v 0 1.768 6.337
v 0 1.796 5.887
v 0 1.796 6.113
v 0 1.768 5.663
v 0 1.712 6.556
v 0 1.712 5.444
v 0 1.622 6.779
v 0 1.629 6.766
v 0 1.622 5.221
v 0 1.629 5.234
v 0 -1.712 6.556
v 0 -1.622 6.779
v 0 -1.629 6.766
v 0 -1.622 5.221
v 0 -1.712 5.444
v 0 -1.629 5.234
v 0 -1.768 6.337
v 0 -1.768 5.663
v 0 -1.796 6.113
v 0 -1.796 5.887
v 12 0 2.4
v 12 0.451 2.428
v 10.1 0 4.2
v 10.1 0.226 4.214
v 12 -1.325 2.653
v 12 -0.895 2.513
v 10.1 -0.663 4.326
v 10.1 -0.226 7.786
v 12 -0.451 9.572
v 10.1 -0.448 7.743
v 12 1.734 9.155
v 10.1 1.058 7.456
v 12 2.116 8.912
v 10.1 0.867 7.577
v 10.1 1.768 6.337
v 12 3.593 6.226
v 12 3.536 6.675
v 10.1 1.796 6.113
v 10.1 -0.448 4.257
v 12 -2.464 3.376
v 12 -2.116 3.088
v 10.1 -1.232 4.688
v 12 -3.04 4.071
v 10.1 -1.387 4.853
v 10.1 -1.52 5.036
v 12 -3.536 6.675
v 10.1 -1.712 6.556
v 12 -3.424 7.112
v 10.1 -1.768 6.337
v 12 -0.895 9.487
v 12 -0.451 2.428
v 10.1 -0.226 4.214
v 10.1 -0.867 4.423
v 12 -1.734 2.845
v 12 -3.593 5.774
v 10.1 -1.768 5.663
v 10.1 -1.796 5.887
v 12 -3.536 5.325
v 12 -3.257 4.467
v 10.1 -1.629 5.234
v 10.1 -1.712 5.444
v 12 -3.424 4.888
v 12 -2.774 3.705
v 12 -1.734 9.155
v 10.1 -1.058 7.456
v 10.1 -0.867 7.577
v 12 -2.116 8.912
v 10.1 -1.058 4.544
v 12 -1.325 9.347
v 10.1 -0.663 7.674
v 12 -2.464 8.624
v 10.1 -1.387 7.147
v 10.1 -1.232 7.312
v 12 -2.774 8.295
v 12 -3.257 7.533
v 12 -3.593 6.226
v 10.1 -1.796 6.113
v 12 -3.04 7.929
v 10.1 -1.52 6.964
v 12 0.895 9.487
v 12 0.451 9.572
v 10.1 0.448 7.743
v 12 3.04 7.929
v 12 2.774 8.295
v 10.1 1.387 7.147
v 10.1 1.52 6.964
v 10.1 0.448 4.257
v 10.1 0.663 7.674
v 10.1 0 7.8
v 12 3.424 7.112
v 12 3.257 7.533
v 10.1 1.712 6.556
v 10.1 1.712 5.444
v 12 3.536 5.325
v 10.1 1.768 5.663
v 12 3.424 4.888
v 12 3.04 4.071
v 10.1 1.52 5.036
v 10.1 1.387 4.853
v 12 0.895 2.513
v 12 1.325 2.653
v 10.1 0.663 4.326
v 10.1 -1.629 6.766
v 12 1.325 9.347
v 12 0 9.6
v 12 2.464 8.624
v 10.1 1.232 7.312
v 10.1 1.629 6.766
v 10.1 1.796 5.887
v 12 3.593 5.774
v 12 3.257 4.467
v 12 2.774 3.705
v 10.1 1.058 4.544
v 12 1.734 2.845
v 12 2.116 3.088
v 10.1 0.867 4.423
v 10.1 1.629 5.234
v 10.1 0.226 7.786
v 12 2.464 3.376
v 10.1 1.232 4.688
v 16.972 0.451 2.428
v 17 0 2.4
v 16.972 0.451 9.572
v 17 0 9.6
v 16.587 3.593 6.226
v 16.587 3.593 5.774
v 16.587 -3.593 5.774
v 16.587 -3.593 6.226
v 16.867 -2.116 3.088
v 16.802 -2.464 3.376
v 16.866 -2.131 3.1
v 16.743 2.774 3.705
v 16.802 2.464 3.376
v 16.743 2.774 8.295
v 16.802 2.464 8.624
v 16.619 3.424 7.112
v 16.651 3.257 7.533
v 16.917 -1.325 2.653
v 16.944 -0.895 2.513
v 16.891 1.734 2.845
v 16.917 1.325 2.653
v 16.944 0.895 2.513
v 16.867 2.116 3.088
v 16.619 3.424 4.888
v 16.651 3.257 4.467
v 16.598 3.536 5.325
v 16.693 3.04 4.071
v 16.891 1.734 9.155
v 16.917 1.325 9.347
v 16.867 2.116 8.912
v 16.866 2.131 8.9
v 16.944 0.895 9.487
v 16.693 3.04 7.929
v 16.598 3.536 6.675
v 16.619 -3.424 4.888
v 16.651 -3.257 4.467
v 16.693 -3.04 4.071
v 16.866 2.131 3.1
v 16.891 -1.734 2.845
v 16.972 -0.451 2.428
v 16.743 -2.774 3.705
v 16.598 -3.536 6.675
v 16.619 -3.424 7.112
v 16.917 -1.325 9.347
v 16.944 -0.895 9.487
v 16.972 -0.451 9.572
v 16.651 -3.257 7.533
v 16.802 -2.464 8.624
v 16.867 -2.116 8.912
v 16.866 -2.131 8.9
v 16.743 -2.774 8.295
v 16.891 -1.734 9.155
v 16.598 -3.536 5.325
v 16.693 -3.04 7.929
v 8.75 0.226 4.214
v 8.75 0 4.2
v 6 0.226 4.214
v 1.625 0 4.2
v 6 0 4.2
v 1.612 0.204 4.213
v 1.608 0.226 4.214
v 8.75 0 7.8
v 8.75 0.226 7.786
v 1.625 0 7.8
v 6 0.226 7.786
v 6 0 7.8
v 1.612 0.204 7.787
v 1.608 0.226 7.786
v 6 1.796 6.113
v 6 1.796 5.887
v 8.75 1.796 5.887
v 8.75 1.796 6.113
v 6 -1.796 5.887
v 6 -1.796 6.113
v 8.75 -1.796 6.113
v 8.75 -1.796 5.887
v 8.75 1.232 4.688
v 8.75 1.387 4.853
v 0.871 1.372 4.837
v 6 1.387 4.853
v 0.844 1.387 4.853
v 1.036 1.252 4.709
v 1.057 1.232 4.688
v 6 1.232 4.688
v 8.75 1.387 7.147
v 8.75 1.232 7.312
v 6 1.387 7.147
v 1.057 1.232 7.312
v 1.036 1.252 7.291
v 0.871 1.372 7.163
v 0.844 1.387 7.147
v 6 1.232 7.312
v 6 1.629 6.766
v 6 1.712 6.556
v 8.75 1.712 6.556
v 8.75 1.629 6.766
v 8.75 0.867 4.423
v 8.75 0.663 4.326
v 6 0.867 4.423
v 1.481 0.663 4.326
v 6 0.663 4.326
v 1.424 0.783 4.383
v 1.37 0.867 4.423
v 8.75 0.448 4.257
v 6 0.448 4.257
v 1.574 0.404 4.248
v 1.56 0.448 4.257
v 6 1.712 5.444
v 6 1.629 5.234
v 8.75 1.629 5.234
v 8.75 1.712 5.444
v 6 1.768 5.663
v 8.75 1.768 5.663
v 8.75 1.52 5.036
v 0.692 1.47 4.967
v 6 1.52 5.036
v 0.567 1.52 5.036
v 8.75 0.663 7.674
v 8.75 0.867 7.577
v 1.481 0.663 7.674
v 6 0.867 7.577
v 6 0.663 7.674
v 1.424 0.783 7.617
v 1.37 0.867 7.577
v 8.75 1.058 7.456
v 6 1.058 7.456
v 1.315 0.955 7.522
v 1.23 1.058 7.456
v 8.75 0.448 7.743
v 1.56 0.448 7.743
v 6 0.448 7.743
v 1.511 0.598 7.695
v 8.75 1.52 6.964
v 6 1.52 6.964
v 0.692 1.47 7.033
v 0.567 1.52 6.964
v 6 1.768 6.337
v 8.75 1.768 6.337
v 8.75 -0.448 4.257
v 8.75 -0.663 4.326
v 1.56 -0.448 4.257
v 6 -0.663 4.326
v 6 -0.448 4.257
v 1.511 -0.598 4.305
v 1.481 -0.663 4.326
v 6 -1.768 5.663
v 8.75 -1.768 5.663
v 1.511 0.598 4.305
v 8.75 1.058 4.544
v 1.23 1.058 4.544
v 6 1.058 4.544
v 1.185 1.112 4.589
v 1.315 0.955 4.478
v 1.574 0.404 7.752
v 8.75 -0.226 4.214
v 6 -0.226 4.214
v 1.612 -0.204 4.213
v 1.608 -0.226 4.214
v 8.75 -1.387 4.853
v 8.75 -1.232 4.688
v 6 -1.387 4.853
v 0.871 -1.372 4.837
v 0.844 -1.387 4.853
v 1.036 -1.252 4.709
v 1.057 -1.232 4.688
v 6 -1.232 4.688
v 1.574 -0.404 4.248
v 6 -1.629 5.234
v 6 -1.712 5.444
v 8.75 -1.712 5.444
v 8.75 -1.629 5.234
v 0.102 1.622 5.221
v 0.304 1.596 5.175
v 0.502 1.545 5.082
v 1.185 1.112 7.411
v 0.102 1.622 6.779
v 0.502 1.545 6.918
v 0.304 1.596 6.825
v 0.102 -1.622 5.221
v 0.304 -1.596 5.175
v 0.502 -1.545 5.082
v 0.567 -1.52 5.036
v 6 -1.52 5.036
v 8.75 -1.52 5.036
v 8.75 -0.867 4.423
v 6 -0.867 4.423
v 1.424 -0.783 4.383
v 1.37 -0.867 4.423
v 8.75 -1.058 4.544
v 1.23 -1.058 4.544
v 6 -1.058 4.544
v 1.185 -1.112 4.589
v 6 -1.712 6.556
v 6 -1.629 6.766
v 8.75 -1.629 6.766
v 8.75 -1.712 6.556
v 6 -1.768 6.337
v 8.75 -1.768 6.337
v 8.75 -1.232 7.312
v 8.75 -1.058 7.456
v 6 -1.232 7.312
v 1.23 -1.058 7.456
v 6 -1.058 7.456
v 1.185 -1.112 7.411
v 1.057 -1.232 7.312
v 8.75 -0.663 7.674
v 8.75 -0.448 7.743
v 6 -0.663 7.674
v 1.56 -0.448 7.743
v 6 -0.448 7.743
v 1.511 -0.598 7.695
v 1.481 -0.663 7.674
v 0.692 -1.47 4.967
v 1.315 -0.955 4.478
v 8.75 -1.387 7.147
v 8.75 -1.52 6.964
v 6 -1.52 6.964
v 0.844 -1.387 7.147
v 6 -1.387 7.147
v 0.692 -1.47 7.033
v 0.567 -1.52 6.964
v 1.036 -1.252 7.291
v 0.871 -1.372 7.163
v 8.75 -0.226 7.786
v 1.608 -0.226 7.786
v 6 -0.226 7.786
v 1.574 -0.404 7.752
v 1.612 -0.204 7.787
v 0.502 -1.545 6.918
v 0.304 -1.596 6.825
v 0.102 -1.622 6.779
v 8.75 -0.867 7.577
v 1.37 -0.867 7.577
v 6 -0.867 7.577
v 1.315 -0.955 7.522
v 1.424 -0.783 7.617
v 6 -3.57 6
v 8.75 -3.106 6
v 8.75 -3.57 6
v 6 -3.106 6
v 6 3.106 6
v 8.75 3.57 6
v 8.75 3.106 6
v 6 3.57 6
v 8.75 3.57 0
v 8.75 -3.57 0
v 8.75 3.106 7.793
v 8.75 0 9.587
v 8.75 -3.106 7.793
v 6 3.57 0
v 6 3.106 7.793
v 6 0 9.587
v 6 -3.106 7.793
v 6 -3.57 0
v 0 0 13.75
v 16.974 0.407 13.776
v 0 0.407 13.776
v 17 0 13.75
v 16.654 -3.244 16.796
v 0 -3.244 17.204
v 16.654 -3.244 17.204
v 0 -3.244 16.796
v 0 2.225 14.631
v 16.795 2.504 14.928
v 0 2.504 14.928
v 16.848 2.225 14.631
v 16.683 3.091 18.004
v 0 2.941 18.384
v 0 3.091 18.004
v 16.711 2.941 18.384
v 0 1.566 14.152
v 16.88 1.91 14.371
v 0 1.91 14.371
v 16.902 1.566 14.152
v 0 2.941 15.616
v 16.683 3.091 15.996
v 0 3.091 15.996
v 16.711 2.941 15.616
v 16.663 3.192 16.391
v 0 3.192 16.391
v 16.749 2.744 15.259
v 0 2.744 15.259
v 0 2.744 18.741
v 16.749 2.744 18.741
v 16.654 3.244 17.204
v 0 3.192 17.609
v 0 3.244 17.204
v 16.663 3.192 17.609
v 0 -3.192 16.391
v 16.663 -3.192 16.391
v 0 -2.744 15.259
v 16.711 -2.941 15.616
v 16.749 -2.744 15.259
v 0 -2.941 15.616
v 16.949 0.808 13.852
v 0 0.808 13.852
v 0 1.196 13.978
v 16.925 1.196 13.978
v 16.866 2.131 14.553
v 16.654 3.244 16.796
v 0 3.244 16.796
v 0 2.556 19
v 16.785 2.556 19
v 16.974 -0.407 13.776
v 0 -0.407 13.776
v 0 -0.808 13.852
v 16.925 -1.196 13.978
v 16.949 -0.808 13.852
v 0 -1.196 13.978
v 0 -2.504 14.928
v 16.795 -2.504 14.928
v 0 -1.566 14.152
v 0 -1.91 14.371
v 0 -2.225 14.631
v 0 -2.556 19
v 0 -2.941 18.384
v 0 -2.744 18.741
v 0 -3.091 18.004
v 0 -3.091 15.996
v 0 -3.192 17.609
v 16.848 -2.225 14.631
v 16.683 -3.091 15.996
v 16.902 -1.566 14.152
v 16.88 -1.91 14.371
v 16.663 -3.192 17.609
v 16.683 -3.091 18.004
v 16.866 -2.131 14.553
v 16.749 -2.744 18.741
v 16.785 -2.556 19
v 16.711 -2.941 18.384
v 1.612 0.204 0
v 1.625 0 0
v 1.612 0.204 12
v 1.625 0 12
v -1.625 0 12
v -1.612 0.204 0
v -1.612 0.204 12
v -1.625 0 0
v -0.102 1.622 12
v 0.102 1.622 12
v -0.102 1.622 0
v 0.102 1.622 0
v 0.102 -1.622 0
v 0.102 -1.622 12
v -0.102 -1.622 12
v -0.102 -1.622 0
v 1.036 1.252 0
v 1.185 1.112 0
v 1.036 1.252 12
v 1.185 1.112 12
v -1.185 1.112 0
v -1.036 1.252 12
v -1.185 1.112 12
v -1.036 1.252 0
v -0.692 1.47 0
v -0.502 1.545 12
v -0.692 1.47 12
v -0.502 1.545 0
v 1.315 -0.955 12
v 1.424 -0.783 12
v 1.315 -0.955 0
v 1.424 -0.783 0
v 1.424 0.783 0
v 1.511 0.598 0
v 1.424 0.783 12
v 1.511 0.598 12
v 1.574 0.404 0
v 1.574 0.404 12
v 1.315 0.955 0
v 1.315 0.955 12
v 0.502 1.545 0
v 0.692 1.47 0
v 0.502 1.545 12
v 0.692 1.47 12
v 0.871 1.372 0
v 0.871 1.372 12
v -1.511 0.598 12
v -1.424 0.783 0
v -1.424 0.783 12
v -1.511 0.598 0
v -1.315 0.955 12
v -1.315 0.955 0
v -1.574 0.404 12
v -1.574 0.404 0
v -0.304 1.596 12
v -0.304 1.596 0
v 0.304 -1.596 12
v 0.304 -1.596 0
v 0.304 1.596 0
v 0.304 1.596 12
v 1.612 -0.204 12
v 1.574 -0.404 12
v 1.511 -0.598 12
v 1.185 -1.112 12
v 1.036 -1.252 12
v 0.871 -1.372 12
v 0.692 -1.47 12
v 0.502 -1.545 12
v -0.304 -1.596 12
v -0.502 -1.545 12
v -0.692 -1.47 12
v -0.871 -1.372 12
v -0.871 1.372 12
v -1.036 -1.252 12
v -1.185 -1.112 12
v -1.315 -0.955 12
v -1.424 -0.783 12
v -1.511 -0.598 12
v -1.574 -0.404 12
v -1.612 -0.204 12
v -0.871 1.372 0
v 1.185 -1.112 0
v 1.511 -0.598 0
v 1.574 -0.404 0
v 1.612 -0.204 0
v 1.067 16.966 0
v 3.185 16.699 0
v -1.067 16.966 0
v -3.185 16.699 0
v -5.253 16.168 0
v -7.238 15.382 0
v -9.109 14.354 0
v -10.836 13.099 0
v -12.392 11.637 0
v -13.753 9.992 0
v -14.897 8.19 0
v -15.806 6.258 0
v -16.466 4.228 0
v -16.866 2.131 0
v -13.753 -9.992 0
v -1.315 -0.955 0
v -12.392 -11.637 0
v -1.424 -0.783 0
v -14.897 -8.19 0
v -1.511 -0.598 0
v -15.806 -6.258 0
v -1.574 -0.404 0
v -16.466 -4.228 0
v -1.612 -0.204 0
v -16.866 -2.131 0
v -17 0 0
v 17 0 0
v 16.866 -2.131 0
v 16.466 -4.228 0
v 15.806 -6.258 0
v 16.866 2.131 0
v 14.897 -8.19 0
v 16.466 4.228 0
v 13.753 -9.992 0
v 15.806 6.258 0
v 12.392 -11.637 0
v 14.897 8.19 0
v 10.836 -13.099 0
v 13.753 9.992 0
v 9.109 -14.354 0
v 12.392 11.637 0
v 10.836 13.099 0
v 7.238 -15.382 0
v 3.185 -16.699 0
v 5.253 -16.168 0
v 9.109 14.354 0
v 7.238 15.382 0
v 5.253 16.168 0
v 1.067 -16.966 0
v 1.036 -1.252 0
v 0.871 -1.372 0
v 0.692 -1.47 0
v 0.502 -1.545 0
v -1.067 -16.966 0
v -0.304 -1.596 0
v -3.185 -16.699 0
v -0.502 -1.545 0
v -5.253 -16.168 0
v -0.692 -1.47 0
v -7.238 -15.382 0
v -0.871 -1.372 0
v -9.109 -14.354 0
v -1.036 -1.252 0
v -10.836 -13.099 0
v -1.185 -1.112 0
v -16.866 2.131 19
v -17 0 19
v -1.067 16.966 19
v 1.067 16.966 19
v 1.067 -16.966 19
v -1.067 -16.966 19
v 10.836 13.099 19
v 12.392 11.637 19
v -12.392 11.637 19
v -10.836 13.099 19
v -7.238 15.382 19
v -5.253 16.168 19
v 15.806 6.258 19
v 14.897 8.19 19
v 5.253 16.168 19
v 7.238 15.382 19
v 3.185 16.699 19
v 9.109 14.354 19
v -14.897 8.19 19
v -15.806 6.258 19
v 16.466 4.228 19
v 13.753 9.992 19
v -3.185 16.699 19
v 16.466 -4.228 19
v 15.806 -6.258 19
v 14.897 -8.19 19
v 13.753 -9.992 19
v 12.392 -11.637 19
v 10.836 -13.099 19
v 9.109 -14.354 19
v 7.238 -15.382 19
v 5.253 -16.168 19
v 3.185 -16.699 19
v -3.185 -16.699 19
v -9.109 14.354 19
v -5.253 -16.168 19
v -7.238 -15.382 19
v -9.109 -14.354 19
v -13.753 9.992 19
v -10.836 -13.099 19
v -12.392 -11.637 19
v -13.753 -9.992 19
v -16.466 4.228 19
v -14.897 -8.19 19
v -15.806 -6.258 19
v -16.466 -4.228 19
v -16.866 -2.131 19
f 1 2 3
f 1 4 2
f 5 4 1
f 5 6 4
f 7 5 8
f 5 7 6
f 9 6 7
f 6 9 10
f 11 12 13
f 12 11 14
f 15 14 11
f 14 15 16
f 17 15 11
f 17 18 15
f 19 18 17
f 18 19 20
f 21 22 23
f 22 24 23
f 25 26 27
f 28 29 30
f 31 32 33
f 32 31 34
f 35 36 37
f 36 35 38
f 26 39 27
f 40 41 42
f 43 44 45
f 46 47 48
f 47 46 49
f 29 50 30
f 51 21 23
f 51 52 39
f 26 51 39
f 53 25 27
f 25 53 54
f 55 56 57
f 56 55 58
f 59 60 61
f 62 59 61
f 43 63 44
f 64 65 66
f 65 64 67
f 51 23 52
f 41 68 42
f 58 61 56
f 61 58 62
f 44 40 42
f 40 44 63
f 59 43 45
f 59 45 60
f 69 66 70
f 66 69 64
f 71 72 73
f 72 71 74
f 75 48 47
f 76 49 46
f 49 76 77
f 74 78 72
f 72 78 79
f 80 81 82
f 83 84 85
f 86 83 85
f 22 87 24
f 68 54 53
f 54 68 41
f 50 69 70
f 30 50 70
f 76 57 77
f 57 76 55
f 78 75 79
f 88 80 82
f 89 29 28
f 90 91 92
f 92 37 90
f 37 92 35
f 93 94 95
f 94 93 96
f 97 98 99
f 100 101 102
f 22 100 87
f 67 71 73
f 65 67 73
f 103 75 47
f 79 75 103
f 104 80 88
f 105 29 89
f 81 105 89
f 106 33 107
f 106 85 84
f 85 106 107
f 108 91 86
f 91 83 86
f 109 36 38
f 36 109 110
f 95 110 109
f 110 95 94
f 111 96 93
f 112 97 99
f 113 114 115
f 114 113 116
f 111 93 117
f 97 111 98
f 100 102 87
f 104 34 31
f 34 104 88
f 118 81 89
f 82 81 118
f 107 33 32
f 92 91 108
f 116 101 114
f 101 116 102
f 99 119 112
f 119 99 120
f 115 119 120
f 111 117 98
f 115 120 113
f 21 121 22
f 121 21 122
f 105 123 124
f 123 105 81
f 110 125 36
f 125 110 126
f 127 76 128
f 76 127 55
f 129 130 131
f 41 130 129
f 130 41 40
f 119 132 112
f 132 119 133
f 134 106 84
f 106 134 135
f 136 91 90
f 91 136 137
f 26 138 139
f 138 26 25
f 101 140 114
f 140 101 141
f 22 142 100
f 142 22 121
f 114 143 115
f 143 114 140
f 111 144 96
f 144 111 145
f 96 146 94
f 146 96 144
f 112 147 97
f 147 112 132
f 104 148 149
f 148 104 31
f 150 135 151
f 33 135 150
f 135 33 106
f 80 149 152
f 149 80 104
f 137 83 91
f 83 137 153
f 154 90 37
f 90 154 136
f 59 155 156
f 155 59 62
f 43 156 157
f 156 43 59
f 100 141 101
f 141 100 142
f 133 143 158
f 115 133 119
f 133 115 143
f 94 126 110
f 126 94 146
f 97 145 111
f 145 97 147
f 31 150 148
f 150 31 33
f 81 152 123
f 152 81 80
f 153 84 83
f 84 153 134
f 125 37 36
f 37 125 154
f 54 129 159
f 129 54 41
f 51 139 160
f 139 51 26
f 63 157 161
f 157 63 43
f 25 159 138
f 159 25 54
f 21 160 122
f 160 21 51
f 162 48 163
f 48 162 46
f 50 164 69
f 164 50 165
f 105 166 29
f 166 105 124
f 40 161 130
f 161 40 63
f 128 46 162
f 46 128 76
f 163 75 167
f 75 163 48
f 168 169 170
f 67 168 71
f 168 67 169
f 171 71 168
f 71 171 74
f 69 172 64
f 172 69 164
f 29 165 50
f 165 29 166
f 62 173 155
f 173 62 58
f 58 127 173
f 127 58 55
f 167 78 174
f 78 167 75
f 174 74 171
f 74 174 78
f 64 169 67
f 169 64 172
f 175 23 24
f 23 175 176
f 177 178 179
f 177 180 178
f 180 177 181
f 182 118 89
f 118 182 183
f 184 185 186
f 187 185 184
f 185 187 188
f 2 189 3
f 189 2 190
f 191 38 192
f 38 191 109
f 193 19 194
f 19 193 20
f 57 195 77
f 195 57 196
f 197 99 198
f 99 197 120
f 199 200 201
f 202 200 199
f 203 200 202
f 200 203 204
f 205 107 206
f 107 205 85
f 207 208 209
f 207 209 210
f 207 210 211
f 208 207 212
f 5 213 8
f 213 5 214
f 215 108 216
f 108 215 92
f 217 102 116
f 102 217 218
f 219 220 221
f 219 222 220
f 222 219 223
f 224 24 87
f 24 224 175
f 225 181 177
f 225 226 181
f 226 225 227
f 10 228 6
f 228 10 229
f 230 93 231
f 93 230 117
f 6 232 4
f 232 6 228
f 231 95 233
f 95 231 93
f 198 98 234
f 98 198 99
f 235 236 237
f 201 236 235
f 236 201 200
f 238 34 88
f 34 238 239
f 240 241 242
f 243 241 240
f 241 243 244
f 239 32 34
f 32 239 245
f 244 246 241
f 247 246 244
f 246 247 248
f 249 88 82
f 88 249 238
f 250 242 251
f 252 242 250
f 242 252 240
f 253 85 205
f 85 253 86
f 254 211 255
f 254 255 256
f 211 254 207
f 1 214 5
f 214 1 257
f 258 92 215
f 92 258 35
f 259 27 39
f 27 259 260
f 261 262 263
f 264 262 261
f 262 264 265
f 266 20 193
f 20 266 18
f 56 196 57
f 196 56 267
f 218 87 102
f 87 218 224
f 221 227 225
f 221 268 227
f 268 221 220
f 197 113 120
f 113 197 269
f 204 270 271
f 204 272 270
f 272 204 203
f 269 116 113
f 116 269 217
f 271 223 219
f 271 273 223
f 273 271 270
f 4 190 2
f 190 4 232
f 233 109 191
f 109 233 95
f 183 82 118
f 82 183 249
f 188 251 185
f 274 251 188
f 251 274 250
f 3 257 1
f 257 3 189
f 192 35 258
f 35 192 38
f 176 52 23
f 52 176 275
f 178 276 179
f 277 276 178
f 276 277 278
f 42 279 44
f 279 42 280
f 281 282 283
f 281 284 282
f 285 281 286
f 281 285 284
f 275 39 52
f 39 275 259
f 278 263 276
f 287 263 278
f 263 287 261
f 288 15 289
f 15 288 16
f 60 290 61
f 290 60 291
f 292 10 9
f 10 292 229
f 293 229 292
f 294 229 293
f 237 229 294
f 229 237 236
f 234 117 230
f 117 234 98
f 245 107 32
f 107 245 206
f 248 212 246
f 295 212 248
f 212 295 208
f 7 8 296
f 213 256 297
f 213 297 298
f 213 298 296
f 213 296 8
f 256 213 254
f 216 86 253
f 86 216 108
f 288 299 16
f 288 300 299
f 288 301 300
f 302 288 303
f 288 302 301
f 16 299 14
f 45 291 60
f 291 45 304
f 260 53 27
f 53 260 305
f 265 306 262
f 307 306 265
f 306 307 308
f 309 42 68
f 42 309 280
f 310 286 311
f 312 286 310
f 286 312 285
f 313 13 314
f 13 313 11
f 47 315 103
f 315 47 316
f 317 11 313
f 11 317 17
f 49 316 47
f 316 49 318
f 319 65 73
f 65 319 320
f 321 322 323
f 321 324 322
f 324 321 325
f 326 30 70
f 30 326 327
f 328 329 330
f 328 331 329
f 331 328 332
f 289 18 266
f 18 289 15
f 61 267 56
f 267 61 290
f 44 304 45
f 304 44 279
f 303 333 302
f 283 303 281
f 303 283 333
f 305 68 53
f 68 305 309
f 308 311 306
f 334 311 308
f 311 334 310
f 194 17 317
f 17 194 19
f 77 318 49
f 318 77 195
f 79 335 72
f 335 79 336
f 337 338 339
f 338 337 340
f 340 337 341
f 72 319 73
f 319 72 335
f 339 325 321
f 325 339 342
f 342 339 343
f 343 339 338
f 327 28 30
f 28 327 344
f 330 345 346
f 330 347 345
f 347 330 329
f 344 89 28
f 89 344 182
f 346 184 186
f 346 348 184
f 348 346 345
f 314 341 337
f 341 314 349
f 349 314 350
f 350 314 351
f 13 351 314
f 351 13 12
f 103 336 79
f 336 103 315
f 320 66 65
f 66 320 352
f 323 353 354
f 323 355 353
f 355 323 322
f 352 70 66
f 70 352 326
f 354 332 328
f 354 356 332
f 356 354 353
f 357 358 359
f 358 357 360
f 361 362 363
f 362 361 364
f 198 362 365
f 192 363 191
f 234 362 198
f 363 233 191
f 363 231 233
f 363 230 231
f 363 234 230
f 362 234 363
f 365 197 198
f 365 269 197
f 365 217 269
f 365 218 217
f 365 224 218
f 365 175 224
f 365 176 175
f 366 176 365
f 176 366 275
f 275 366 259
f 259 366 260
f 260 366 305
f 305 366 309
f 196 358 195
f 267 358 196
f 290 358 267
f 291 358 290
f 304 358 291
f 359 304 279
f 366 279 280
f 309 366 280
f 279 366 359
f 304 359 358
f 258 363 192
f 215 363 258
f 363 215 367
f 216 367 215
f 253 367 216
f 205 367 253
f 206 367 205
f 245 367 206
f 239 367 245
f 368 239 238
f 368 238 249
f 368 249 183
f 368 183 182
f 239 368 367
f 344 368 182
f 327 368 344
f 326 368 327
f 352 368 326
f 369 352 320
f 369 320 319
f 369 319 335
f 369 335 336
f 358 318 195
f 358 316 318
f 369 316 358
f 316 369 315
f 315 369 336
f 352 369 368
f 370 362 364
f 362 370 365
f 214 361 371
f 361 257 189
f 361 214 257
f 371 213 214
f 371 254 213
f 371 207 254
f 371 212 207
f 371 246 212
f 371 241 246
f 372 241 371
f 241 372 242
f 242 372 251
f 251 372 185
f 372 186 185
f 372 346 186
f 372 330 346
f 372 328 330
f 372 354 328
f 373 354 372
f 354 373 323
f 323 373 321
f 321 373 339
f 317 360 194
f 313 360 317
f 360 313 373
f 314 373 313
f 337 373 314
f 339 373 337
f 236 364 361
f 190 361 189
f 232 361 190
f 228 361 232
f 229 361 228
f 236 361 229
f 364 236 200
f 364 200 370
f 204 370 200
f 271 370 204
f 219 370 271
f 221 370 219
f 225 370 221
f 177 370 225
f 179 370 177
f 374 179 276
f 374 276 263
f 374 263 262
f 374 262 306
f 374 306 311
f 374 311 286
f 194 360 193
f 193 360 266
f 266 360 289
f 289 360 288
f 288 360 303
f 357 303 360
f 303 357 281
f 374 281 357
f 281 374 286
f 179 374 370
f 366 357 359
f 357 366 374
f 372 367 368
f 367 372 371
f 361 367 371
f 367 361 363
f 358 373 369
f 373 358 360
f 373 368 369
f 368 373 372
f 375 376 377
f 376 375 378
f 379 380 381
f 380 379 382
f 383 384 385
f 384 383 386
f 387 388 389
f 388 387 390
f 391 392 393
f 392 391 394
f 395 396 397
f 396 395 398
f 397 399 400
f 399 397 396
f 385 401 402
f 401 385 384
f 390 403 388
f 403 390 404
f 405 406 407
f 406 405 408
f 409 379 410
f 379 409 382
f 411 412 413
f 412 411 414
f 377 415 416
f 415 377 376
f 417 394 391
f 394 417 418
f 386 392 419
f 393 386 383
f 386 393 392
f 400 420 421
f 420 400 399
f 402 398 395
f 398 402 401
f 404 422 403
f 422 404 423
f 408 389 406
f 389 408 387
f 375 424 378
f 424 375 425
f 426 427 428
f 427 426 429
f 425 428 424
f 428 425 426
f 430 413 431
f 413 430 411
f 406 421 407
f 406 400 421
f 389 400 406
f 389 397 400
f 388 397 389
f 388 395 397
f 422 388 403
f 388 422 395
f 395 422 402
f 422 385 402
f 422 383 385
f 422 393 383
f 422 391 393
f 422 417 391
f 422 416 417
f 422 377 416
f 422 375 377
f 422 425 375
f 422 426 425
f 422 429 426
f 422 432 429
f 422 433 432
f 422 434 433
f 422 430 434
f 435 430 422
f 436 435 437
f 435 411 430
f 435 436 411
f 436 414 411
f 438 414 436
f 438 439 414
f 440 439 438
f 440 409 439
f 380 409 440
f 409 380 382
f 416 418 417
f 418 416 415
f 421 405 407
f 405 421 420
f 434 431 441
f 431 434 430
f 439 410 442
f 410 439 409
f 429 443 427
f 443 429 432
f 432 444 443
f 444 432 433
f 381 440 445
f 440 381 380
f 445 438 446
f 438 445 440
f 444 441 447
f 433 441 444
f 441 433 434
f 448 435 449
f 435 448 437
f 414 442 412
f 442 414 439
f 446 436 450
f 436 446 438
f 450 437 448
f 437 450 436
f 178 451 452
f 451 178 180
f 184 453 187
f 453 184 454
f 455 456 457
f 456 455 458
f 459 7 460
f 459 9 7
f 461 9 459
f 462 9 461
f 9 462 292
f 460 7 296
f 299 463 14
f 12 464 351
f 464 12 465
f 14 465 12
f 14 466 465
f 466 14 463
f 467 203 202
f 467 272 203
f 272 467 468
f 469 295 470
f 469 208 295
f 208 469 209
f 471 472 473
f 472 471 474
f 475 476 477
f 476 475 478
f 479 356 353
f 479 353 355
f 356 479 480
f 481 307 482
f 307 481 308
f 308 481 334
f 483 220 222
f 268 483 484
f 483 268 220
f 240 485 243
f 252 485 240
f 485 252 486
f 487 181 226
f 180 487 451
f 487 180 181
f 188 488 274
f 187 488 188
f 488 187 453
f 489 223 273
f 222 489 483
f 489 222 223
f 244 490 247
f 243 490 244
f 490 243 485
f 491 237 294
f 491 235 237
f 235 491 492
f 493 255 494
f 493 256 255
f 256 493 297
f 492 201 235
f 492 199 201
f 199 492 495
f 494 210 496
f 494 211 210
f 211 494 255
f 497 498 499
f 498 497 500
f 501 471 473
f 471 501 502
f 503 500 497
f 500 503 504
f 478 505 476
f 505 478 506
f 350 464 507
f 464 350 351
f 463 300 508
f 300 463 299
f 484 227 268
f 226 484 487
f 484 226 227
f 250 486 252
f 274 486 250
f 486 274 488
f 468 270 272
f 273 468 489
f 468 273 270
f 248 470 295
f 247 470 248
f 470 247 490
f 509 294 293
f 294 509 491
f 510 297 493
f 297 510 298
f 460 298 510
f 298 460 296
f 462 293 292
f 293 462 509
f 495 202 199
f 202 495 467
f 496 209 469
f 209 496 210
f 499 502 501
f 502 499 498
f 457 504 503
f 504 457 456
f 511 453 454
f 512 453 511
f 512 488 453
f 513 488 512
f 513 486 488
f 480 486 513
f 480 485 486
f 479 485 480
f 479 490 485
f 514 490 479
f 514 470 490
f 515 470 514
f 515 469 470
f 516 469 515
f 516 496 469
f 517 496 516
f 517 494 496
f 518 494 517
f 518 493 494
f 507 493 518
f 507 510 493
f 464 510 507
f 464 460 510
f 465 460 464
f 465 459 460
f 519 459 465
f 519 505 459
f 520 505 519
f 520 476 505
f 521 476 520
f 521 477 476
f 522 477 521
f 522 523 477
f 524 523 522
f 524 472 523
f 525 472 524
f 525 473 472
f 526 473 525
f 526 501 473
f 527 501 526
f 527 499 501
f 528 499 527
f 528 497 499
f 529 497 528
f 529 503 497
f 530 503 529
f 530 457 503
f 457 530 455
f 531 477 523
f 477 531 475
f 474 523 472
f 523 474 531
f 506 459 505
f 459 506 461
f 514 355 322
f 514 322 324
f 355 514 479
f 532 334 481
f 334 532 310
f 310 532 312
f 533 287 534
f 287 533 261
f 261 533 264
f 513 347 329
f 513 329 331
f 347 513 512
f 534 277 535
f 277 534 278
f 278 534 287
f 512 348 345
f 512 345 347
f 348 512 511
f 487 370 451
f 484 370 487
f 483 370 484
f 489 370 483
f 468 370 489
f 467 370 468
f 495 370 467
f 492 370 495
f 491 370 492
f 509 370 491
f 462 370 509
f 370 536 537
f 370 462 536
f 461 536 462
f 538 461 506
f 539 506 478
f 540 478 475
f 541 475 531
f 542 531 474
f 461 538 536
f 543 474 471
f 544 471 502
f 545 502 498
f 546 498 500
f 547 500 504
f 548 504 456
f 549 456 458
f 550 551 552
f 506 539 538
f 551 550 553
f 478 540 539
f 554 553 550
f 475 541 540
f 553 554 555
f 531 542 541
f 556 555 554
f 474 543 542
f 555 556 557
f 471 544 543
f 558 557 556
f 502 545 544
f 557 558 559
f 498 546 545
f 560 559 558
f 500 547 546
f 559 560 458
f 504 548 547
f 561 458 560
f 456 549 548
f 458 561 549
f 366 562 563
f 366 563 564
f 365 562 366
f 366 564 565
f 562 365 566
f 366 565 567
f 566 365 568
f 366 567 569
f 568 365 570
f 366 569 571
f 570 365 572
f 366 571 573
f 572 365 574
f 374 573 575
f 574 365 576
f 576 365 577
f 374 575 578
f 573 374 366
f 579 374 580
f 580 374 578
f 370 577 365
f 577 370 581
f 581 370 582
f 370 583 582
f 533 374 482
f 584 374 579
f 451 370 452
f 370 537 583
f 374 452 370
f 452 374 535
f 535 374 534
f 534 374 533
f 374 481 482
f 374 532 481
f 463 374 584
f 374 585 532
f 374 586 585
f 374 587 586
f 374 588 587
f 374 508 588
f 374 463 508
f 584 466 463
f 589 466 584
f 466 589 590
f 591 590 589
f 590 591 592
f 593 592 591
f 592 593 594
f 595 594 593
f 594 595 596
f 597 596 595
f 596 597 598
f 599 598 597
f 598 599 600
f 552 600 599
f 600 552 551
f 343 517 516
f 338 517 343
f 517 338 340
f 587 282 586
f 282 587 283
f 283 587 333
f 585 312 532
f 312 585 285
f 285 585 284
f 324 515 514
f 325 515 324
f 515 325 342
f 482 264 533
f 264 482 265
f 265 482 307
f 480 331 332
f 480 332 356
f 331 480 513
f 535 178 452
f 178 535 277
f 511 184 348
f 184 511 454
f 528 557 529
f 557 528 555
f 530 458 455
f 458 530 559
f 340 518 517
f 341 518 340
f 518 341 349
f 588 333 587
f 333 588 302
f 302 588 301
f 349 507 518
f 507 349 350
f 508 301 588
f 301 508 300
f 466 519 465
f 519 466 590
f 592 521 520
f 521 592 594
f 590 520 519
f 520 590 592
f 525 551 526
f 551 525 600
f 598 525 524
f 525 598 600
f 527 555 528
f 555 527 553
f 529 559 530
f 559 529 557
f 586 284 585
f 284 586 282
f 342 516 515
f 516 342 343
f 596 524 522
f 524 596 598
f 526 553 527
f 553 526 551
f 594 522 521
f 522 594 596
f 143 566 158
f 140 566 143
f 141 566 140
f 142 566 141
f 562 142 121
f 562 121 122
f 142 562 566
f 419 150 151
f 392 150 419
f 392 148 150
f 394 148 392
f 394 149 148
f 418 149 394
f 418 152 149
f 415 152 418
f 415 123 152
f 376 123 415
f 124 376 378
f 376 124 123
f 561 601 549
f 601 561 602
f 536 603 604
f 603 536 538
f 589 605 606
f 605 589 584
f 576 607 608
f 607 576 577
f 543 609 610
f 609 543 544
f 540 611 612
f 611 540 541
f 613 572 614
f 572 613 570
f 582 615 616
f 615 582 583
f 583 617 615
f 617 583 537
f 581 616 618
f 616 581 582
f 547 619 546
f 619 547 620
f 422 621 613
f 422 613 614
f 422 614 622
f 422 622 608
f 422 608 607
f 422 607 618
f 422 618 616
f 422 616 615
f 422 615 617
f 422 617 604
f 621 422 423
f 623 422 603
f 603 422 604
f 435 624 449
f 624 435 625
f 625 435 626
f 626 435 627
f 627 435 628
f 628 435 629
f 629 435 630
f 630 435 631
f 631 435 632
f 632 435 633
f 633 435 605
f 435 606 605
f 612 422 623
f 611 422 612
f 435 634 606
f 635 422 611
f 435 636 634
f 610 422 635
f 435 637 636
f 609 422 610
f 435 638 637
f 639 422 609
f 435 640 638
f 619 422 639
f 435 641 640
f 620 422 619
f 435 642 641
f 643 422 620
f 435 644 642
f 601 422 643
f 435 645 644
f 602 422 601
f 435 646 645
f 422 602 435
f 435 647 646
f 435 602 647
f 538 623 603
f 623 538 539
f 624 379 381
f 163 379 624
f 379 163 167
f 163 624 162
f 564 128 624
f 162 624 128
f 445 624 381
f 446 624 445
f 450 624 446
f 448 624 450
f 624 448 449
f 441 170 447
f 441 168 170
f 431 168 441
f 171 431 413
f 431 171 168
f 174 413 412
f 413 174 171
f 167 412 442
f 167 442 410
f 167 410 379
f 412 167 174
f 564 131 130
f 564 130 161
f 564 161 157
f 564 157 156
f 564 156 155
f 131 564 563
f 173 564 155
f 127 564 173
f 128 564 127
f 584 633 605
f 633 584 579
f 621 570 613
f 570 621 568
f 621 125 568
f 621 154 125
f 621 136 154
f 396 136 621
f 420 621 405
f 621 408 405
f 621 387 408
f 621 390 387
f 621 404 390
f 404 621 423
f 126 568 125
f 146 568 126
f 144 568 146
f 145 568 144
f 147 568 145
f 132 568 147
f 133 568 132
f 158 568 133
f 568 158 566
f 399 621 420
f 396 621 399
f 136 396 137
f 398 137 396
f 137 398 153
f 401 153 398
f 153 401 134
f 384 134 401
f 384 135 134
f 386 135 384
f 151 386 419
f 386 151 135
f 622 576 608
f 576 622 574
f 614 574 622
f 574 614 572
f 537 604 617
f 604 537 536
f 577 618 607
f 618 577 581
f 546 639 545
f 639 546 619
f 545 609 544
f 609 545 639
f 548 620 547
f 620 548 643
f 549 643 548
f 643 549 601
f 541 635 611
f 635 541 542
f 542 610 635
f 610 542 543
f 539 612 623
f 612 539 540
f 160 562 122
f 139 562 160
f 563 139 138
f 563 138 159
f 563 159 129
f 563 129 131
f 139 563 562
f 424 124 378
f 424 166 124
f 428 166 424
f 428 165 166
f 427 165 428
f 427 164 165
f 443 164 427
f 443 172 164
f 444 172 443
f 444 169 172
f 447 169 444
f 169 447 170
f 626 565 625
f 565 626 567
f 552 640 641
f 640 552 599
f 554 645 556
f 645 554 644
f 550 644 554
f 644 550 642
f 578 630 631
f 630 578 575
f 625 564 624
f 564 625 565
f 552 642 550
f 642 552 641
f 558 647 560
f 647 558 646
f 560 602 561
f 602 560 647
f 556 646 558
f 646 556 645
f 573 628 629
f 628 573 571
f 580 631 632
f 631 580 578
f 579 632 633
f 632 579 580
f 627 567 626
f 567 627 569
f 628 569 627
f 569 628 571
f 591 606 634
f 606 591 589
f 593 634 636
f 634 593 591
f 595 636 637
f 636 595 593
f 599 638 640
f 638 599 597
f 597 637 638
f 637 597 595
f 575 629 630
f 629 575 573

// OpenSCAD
$fn = 50;


difference() {
	union() {
		cylinder(h = 19, r = 17.0000000000);
	}
	union() {
		translate(v = [12, 0, 6.0000000000]) {
			rotate(a = [0, 90, 0]) {
				difference() {
					union() {
						translate(v = [0, 0, -12.0000000000]) {
							cylinder(h = 12, r = 1.5000000000);
						}
						translate(v = [0, 0, -1.9000000000]) {
							cylinder(h = 1.9000000000, r1 = 1.8000000000, r2 = 3.6000000000);
						}
						cylinder(h = 250, r = 3.6000000000);
						translate(v = [0, 0, -12.0000000000]) {
							cylinder(h = 12, r = 1.8000000000);
						}
						translate(v = [0, 0, -12.0000000000]) {
							cylinder(h = 12, r = 1.5000000000);
						}
					}
					union();
				}
			}
		}
		translate(v = [6.0000000000, 0, 6.0000000000]) {
			rotate(a = [0, 90, 0]) {
				difference() {
					union() {
						translate(v = [0.0000000000, -3.5702500000, 0]) {
							cube(size = [20, 7.1405000000, 2.7500000000]);
						}
						linear_extrude(height = 2.7500000000) {
							polygon(points = [[3.5870000000, 0.0000000000], [1.7935000000, 3.1064331234], [-1.7935000000, 3.1064331234], [-3.5870000000, 0.0000000000], [-1.7935000000, -3.1064331234], [1.7935000000, -3.1064331234]]);
						}
					}
					union();
				}
			}
		}
		#translate(v = [0, 0, 17.0000000000]) {
			rotate(a = [0, 90, 0]) {
				cylinder(h = 200, r = 3.2500000000);
			}
		}
		cylinder(h = 12, r = 1.6250000000);
	}
}
